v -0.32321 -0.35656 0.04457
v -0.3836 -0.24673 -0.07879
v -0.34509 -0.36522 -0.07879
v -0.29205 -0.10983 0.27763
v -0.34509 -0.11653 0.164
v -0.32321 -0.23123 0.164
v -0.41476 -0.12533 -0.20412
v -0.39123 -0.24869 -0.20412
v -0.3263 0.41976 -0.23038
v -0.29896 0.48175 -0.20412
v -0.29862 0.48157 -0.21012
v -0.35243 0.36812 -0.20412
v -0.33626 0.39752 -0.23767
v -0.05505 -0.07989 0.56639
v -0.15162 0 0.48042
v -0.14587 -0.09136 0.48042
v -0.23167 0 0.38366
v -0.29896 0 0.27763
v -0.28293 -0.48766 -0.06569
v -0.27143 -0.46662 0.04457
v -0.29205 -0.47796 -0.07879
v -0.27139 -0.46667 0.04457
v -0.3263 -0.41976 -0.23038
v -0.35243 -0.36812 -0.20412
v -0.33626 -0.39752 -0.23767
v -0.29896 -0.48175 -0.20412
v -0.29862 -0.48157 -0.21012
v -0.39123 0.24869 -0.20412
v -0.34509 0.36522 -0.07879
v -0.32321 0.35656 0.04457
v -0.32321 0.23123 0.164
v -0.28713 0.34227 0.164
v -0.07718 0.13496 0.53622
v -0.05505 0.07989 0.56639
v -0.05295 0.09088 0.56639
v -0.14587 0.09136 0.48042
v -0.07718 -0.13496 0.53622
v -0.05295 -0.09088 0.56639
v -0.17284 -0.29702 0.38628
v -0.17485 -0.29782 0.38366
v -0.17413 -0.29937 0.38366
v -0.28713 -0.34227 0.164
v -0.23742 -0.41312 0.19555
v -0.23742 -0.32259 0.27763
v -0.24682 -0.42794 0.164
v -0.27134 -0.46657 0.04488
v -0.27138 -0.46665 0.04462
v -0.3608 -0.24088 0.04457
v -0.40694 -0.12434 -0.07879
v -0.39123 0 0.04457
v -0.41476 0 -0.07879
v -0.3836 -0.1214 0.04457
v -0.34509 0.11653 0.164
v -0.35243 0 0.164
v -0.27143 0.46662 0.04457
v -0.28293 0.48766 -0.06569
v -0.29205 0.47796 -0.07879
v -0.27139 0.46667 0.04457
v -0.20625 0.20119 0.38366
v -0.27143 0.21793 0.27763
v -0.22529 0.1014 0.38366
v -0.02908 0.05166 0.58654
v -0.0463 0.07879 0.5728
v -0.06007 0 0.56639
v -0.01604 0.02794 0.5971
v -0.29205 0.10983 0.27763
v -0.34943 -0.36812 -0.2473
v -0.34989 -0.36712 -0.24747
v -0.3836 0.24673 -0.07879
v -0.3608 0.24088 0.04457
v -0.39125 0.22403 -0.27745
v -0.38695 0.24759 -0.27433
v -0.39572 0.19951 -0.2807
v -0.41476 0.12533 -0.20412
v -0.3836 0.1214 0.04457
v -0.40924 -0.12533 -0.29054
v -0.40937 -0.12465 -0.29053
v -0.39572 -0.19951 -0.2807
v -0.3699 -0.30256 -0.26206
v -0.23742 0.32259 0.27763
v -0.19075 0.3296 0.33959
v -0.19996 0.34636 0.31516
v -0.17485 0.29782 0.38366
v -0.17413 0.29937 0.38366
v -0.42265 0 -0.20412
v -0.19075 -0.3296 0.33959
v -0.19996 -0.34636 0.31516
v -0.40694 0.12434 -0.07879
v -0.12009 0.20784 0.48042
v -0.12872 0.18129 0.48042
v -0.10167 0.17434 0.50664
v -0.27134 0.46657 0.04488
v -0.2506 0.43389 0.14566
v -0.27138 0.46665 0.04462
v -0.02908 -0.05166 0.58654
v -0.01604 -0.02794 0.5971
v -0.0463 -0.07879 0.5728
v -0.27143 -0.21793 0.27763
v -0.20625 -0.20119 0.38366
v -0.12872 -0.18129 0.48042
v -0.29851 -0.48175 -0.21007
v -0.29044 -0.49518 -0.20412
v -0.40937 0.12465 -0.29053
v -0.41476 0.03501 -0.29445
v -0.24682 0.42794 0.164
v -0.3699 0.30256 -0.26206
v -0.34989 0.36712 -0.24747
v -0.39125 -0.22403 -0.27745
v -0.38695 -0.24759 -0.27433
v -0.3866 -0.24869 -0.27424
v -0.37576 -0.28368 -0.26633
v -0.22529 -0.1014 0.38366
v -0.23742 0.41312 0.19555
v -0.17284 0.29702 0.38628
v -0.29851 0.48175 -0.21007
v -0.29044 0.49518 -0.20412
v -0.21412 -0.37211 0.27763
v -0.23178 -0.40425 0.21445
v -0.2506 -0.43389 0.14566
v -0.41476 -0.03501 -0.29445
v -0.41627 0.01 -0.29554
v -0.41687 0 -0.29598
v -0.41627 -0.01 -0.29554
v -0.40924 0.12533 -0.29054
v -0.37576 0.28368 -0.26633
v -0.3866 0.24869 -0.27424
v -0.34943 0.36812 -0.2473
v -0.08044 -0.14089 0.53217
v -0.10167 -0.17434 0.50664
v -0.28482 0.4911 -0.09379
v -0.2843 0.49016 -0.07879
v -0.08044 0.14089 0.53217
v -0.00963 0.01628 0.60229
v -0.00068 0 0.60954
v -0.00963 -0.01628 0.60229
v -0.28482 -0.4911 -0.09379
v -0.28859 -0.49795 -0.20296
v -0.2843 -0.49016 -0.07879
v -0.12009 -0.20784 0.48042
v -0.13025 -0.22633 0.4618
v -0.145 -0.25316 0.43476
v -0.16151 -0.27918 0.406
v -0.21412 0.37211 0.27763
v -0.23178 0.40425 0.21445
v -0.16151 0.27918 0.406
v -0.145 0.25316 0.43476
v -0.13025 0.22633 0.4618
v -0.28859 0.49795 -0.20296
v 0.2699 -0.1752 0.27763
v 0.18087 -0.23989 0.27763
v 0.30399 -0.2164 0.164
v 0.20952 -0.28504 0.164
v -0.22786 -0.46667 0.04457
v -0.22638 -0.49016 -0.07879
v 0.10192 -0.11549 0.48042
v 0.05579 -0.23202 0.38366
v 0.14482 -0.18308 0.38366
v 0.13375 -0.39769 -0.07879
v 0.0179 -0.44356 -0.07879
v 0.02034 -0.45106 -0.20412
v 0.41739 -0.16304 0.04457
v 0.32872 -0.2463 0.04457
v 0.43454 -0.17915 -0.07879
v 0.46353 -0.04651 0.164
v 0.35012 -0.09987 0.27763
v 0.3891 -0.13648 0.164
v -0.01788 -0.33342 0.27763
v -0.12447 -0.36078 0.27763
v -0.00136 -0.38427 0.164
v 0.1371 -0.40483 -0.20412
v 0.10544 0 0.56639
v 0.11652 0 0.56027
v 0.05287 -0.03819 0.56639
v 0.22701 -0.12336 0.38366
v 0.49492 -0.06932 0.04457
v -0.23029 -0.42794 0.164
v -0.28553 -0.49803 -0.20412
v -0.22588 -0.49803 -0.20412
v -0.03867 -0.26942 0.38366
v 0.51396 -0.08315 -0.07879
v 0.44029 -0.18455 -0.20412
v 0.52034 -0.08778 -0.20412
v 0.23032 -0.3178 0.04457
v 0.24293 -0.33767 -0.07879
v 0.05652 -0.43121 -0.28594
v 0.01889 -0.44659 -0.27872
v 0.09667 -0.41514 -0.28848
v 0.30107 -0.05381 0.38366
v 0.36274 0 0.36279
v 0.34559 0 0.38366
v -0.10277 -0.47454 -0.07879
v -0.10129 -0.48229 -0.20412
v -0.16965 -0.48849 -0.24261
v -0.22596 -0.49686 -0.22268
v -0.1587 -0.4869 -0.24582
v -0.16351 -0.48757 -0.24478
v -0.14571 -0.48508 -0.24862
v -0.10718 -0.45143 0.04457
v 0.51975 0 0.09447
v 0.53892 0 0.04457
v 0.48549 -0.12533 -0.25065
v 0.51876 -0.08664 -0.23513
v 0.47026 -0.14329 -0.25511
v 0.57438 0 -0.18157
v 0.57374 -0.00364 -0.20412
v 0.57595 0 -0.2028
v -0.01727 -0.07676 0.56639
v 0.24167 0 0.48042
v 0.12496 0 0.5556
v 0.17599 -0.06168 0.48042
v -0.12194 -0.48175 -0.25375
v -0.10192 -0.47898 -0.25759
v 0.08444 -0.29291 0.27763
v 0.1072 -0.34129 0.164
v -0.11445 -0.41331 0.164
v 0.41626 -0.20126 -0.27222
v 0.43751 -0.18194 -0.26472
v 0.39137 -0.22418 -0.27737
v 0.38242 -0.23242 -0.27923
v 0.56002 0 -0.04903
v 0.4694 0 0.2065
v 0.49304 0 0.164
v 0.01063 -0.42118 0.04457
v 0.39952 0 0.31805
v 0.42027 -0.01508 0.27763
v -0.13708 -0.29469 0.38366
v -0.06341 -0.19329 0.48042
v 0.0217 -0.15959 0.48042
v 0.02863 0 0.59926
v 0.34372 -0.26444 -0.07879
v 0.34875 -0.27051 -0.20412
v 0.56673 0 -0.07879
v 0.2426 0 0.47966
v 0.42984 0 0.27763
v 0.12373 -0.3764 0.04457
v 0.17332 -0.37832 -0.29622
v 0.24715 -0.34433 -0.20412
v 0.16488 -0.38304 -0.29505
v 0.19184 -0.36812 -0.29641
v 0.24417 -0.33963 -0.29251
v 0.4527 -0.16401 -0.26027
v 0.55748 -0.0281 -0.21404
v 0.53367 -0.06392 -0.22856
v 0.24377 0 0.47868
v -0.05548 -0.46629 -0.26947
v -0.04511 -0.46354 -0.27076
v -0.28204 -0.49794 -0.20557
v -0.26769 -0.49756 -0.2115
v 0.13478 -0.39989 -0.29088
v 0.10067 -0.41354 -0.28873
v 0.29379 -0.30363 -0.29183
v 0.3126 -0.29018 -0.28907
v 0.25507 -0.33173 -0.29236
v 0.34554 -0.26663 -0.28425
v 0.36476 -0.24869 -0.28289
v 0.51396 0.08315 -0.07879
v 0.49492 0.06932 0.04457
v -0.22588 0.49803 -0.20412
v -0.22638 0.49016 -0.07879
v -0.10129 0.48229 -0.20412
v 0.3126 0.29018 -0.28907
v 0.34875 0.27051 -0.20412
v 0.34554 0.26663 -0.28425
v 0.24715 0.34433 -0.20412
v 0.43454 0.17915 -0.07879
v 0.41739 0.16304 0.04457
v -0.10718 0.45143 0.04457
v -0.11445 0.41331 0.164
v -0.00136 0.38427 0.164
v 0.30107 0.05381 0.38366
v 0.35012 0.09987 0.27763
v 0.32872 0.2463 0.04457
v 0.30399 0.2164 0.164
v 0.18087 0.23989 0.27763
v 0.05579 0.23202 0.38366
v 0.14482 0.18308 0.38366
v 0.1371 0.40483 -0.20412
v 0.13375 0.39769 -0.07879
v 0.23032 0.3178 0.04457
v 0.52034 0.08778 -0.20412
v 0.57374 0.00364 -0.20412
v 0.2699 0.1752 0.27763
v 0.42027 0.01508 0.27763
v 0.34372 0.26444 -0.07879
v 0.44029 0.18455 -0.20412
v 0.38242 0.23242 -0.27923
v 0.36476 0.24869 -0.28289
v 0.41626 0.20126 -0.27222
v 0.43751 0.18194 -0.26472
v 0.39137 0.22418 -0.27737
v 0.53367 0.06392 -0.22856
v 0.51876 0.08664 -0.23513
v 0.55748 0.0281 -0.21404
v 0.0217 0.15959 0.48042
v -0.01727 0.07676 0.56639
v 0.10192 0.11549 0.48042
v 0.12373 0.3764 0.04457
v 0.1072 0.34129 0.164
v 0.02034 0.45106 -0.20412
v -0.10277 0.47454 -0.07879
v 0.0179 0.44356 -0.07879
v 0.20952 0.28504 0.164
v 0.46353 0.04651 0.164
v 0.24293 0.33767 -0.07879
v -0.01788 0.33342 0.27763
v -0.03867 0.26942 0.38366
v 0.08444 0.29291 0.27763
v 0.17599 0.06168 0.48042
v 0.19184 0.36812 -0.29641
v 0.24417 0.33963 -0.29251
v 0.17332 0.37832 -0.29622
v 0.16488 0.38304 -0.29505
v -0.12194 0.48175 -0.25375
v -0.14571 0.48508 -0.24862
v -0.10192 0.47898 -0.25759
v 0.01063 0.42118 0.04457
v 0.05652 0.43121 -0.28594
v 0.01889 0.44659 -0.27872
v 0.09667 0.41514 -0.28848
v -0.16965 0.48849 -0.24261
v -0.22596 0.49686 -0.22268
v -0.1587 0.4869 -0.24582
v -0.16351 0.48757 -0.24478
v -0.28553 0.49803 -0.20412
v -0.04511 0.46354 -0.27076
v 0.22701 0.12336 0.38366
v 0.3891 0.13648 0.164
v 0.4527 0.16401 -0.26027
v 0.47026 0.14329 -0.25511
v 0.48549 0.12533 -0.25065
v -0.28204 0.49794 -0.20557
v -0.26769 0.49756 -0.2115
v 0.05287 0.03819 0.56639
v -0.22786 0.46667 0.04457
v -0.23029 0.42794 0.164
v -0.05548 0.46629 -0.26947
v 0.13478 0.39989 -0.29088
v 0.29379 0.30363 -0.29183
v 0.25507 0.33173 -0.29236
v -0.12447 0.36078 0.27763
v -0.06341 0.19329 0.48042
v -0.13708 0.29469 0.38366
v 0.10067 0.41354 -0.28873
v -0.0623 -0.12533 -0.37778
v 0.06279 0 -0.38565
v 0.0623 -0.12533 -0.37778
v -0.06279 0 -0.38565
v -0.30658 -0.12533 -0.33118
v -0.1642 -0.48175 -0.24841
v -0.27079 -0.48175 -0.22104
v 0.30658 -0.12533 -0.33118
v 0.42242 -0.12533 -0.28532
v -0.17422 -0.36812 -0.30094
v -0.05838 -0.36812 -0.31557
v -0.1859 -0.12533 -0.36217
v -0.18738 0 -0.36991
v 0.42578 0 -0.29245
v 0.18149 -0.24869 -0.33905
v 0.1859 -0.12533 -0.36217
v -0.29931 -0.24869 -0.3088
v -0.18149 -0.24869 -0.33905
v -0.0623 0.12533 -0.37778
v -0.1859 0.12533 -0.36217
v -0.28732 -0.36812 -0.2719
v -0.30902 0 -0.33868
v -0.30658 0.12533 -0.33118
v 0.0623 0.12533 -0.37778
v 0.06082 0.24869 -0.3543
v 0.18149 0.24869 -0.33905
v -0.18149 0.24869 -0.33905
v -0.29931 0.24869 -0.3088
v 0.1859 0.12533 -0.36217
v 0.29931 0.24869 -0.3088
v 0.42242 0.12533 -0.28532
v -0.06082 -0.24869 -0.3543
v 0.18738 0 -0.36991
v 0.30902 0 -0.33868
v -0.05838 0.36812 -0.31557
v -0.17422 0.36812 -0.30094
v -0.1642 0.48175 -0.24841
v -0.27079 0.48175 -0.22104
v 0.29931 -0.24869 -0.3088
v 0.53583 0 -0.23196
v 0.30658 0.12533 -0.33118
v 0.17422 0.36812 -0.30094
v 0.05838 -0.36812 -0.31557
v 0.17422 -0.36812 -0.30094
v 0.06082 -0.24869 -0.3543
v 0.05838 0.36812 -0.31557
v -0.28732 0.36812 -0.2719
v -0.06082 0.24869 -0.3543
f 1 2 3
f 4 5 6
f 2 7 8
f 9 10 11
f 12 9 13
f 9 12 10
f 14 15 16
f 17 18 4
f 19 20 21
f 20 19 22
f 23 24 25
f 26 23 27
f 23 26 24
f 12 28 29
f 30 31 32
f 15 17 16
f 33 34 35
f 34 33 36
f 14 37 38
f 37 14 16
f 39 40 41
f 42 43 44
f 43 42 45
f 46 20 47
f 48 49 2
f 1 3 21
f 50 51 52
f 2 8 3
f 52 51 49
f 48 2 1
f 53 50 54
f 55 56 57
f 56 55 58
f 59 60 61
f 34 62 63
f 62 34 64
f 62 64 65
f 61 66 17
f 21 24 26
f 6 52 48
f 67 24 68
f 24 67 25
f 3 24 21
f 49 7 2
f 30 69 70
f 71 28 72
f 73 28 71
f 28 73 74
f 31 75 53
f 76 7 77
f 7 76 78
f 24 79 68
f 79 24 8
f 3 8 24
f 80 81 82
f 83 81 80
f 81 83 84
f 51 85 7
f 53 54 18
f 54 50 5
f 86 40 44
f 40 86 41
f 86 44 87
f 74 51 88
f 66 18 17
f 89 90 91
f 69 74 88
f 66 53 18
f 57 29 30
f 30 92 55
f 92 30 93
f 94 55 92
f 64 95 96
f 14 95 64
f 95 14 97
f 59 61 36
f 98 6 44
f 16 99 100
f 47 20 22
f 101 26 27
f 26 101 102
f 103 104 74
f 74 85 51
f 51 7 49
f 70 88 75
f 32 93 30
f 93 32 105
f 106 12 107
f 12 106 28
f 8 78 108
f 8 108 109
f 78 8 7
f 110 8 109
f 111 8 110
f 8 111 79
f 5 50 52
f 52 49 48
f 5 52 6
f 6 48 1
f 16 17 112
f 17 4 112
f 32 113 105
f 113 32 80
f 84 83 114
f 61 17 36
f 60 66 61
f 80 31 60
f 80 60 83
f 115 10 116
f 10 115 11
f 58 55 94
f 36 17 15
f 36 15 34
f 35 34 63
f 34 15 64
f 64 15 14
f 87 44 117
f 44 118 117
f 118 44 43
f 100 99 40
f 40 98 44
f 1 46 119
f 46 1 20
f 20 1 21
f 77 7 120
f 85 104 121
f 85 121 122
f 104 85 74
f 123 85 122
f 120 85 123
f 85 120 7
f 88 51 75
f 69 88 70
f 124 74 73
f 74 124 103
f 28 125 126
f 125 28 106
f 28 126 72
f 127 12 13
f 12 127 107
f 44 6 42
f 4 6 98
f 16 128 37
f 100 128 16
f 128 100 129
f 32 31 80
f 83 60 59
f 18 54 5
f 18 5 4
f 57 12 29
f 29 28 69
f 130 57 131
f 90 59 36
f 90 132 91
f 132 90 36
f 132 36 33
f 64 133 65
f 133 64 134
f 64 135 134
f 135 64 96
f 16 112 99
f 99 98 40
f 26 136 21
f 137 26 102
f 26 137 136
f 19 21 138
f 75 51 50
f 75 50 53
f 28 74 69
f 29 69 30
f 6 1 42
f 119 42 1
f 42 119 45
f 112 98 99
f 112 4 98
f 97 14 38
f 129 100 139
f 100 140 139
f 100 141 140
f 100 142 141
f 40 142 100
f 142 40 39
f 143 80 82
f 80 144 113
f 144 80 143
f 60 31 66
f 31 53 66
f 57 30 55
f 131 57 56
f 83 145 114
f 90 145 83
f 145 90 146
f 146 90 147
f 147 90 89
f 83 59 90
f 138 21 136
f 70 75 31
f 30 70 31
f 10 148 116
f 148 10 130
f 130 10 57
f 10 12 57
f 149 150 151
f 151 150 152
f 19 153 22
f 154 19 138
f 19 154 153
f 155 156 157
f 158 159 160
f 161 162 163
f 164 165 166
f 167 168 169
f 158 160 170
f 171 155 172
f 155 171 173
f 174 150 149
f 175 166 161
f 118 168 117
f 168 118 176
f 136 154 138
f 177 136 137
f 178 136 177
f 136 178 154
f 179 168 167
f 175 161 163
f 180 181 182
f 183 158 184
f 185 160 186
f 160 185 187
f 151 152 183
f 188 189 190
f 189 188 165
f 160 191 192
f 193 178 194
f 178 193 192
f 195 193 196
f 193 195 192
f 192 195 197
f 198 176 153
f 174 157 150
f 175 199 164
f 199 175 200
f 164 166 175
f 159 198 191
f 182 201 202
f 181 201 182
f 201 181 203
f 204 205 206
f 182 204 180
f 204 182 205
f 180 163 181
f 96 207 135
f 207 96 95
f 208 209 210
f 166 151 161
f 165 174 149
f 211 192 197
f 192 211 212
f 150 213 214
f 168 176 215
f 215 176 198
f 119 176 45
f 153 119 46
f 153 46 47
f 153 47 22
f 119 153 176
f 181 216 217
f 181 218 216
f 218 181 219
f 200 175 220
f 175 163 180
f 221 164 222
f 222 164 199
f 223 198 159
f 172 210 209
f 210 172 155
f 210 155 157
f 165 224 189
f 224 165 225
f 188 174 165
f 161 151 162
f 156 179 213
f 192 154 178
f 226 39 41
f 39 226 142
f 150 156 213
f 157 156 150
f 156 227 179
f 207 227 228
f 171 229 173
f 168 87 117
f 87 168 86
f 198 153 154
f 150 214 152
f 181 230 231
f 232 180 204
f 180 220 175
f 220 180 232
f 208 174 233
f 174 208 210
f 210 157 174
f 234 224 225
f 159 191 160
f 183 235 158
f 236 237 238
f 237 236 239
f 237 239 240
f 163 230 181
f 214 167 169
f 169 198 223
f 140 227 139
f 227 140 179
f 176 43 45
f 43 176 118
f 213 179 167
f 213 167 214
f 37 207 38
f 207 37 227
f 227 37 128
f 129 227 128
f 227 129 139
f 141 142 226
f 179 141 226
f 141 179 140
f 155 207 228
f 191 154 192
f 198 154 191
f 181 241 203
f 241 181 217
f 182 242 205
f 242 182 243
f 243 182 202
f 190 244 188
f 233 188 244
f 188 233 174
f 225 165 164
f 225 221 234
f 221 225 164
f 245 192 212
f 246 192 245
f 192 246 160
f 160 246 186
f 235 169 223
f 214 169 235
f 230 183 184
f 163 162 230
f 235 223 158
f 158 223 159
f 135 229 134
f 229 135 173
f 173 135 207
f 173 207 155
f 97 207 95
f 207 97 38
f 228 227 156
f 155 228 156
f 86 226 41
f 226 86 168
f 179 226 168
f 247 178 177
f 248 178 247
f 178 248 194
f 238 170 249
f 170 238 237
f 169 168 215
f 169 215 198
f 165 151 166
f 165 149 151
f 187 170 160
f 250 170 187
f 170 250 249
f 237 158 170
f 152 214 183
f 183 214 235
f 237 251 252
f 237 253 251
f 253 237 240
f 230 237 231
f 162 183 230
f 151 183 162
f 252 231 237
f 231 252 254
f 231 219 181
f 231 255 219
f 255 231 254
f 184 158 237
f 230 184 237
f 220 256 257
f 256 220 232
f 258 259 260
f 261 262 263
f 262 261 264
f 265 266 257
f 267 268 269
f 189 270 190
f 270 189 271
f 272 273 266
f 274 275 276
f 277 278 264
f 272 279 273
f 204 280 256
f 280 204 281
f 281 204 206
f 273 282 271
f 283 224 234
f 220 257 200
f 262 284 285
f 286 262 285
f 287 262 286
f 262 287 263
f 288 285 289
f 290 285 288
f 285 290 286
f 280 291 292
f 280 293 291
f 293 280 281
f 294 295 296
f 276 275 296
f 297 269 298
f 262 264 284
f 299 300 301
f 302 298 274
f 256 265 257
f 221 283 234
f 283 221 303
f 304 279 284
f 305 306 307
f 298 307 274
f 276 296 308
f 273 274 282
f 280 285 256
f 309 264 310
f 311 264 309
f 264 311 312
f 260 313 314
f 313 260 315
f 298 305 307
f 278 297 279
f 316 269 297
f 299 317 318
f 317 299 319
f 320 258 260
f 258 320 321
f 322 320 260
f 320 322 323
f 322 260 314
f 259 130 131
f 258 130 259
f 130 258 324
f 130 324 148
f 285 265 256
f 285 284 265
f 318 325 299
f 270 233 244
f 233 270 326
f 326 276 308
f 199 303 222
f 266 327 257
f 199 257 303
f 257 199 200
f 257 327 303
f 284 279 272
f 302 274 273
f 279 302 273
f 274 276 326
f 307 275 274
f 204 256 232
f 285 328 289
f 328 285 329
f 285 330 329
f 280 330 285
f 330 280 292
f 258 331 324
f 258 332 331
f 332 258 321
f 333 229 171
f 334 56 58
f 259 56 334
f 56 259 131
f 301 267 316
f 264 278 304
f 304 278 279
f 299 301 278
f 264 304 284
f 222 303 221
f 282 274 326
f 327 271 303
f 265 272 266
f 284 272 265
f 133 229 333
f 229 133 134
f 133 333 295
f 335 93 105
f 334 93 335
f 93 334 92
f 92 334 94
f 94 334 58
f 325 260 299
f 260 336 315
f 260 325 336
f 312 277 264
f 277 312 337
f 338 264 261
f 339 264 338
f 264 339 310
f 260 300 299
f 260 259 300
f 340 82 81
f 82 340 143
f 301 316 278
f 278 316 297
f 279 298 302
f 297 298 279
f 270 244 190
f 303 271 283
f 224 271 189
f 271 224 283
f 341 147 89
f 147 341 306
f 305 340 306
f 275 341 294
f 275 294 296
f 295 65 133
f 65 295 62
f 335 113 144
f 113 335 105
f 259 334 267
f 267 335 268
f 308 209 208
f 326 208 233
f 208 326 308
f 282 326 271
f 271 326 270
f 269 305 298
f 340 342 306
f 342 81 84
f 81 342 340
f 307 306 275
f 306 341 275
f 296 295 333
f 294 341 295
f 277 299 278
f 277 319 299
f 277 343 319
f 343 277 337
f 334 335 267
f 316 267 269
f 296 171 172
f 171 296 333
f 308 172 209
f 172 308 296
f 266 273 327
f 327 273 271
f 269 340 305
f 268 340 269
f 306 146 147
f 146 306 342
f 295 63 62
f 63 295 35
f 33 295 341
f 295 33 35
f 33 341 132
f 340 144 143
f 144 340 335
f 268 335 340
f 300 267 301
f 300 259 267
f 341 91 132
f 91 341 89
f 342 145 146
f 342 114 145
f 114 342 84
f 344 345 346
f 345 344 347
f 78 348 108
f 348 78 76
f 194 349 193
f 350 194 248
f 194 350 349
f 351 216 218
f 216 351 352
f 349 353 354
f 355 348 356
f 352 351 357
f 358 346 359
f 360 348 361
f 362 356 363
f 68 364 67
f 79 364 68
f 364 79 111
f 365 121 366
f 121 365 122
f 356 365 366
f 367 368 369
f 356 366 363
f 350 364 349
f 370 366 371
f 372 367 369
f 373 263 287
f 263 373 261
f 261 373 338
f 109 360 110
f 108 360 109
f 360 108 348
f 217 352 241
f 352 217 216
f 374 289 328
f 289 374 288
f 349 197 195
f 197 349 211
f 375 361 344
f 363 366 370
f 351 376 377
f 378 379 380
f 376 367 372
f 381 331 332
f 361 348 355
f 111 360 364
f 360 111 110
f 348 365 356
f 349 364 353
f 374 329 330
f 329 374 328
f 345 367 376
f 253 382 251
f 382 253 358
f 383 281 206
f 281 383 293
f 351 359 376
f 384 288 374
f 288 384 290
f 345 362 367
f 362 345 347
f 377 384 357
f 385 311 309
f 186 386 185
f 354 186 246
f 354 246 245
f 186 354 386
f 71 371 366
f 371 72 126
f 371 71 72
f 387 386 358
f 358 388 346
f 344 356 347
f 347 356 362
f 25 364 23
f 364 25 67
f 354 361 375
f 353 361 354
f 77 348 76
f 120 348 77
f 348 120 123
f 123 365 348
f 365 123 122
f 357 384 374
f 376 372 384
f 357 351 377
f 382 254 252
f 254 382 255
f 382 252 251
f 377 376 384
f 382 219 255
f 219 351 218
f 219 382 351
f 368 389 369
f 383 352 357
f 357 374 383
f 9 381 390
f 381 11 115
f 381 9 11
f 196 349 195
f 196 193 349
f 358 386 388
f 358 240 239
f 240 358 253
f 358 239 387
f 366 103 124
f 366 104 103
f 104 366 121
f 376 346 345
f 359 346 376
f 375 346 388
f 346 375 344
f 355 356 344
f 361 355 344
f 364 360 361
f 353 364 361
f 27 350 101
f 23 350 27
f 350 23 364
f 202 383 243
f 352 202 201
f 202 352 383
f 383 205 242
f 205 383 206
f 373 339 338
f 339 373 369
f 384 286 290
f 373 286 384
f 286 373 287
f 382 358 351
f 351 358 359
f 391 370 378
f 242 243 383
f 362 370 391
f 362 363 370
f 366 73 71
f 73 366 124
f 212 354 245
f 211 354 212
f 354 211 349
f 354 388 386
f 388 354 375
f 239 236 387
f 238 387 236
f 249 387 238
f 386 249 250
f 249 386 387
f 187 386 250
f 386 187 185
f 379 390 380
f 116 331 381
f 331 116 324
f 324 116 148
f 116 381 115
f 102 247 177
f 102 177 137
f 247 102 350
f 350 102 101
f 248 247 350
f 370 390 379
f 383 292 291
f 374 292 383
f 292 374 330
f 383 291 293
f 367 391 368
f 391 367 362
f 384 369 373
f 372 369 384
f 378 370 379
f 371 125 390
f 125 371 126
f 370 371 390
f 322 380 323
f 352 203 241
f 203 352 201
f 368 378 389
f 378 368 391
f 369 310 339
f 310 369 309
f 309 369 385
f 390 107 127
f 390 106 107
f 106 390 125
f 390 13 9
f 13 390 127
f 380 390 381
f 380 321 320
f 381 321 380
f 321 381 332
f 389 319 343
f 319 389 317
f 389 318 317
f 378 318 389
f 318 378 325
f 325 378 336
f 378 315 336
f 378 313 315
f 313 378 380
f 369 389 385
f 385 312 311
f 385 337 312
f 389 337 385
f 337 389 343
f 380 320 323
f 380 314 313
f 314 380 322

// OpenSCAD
// Reuleaux Tetrahedron
// ceptimus 2018-01-13

width = 1; // width of the object to be printed
$fn = 50; // higher numbers give smoother object but (much) longer render times

// vertices and edge length of Reuleaux Tetrahedron from Wikipedia
v1 = [sqrt(8/9), 0, -1/3];
v2 = [-sqrt(2/9), sqrt(2/3), -1/3];
v3 = [-sqrt(2/9), -sqrt(2/3), -1/3];
v4 = [0, 0, 1];
a = sqrt(8/3); // edge length given by above vertices

k = width / a; // scaling constant to generate desired width from standard vertices

reuleauxTetrahedron();

module reuleauxTetrahedron() {
    intersection() {
        translate(v1 * k)
            sphere(r = width);
        translate(v2 * k)
            sphere(r = width);
        translate(v3 * k)
            sphere(r = width);
        translate(v4 * k)
            rotate([90, 0, 0]) // use similar part of sphere for bottom face as other faces - OpenScad renders the parts of 'spheres' near the 'poles' differently
                sphere(r = width);
    }
}
